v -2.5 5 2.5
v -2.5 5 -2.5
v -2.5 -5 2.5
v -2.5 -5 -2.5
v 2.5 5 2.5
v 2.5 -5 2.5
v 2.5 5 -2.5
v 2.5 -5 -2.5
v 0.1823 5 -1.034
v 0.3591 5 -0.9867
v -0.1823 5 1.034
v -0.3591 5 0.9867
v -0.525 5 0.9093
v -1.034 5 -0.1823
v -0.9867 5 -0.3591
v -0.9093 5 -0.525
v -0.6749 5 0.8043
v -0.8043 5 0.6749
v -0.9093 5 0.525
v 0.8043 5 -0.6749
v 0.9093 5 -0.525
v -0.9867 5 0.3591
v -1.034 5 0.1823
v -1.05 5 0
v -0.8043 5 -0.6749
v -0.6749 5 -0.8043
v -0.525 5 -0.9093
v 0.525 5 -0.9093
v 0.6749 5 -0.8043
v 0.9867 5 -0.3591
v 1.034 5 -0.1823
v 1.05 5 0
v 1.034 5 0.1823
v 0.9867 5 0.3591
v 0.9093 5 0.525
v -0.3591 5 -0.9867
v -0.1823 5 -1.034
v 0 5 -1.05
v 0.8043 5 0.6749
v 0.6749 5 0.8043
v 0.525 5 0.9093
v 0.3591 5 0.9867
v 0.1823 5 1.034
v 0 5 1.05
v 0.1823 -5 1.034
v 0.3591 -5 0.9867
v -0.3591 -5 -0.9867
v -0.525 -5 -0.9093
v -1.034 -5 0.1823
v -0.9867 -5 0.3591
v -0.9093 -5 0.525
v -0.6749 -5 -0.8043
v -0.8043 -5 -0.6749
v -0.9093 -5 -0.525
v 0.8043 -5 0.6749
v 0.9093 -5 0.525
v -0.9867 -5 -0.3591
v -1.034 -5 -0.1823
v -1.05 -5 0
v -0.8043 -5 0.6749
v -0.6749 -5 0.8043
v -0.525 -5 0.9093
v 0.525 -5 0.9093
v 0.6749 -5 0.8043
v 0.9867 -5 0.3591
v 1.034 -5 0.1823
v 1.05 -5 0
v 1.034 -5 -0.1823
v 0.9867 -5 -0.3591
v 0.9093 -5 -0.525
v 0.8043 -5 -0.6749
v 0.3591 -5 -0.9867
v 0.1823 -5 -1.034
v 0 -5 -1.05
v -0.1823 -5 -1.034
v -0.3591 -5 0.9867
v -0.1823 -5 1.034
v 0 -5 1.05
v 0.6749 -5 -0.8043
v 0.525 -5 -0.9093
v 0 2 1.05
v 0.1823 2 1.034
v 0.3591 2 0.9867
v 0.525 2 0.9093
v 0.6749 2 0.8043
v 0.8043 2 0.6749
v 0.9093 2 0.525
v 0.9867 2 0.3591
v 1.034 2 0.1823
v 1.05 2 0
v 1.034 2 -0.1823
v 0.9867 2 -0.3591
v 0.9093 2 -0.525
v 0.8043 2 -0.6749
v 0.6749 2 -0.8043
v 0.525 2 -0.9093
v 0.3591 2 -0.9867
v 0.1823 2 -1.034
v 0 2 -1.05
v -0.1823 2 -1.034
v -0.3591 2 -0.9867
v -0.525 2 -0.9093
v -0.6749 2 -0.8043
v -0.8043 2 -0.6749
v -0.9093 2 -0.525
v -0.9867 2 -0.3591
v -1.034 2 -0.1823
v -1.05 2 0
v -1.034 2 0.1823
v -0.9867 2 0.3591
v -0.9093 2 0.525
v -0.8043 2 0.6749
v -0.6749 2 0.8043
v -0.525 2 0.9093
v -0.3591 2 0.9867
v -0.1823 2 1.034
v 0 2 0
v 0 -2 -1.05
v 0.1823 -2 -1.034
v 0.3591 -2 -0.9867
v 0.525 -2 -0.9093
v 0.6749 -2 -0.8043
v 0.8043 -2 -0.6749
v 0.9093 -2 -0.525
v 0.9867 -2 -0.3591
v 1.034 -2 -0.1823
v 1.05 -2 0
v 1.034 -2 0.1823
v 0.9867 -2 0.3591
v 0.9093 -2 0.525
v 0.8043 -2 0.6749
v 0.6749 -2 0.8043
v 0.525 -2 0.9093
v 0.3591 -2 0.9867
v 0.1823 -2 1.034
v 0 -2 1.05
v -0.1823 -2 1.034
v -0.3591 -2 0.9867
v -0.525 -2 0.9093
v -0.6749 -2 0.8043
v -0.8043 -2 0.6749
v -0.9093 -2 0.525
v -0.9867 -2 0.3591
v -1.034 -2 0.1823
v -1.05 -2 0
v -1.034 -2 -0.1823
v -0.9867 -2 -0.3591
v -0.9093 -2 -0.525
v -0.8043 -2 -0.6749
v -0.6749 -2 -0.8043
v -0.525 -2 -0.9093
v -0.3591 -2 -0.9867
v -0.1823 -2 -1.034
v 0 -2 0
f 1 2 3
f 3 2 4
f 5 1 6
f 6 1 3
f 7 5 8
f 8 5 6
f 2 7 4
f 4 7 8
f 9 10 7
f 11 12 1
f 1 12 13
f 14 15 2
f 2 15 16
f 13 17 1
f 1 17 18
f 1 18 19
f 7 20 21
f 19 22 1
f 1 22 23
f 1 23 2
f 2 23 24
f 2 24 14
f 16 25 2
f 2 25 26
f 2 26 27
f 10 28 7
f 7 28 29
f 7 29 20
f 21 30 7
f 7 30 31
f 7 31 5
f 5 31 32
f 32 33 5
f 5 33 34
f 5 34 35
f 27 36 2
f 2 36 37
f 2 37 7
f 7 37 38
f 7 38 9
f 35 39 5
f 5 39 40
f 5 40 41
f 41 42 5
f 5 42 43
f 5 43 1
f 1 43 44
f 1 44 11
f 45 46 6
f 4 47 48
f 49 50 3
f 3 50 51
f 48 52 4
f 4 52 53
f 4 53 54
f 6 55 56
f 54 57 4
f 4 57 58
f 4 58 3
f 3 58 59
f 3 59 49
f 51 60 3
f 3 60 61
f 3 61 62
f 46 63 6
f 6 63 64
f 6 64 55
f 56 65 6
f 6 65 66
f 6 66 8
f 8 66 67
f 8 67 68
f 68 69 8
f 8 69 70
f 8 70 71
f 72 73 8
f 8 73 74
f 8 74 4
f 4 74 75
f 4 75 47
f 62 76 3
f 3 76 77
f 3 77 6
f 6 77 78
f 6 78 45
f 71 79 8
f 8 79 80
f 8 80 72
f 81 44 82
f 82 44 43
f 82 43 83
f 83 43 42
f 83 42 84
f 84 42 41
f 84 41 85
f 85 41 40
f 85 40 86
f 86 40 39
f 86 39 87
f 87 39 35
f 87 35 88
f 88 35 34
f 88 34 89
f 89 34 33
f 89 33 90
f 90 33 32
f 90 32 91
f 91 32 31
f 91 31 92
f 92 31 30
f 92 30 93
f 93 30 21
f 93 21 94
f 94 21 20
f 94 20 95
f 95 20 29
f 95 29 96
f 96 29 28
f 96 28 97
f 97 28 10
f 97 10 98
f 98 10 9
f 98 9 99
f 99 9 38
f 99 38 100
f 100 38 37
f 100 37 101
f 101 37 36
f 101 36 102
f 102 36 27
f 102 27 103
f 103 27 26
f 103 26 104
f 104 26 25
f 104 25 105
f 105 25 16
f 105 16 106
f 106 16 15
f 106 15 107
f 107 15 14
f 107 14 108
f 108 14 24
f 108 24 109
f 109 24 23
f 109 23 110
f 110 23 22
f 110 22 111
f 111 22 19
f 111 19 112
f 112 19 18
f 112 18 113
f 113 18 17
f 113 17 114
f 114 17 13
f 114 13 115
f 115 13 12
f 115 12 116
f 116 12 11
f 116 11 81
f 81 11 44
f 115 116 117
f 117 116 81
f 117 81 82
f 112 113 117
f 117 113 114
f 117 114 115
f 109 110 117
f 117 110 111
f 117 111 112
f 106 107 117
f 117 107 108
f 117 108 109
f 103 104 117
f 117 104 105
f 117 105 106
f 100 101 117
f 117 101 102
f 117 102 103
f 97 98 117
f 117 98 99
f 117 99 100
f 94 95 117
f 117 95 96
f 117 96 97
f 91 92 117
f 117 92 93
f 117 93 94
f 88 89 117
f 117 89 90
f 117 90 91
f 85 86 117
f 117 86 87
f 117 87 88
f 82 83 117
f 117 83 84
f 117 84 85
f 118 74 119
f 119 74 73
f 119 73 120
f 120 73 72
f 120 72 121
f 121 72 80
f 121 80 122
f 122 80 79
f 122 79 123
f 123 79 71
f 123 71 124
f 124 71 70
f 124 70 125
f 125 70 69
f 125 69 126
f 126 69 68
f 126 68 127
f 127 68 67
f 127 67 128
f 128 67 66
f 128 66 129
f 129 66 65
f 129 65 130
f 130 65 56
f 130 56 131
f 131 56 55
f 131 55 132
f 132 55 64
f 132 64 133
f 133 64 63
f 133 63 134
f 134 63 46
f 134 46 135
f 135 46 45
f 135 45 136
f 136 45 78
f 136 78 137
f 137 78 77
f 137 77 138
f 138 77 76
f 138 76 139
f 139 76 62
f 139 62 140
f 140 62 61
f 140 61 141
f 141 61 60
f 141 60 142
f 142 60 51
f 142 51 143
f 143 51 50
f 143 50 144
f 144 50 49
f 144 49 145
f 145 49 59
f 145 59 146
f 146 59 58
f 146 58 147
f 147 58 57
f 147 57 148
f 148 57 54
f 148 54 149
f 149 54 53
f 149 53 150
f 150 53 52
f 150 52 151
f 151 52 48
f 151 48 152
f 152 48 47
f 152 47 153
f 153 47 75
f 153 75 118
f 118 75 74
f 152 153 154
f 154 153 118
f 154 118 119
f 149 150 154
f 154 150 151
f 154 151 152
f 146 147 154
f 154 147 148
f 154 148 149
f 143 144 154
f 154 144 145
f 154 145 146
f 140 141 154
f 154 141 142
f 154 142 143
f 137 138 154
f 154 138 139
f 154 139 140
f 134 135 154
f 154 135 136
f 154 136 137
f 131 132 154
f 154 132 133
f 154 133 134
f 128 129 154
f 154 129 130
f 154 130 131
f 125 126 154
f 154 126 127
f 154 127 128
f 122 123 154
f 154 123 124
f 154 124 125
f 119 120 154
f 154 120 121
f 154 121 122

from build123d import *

# Parameters (mm, degrees)
SKETCH1_W           = 5
SKETCH1_H           = 5
BOSS_EXTRUDE1_DEPTH = 5
SKETCH2_R           = 1.05
CUT_EXTRUDE1_DEPTH  = 3
CUT_EXTRUDE2_START  = -3
SKETCH3_R           = 1.05
CUT_EXTRUDE2_DEPTH  = 3


with BuildPart() as part:
    # Sketch1 → Boss-Extrude1 (new, symmetric)
    with BuildSketch(Plane(origin=(0, 0, 0), x_dir=(1, 0, 0), z_dir=(0, 1, 0))):
        Rectangle(SKETCH1_W, SKETCH1_H)
    extrude(amount=BOSS_EXTRUDE1_DEPTH, both=True)

    # Sketch2 → Cut-Extrude1 (cut)
    with BuildSketch(Plane(origin=(0, 5, 0), x_dir=(1, 0, 0), z_dir=(0, 1, 0))):
        with Locations(Location((0, 0, 0), (0, 0, 270))):
            Circle(SKETCH2_R)
    extrude(amount=-CUT_EXTRUDE1_DEPTH, mode=Mode.SUBTRACT)

    # Sketch3 → Cut-Extrude2 (cut)
    with BuildSketch(Plane.XZ.offset(5).offset(CUT_EXTRUDE2_START)):
        with Locations(Location((0, 0, 0), (0, 0, 90))):
            Circle(SKETCH3_R)
    extrude(amount=CUT_EXTRUDE2_DEPTH, mode=Mode.SUBTRACT)


solid = part.part
